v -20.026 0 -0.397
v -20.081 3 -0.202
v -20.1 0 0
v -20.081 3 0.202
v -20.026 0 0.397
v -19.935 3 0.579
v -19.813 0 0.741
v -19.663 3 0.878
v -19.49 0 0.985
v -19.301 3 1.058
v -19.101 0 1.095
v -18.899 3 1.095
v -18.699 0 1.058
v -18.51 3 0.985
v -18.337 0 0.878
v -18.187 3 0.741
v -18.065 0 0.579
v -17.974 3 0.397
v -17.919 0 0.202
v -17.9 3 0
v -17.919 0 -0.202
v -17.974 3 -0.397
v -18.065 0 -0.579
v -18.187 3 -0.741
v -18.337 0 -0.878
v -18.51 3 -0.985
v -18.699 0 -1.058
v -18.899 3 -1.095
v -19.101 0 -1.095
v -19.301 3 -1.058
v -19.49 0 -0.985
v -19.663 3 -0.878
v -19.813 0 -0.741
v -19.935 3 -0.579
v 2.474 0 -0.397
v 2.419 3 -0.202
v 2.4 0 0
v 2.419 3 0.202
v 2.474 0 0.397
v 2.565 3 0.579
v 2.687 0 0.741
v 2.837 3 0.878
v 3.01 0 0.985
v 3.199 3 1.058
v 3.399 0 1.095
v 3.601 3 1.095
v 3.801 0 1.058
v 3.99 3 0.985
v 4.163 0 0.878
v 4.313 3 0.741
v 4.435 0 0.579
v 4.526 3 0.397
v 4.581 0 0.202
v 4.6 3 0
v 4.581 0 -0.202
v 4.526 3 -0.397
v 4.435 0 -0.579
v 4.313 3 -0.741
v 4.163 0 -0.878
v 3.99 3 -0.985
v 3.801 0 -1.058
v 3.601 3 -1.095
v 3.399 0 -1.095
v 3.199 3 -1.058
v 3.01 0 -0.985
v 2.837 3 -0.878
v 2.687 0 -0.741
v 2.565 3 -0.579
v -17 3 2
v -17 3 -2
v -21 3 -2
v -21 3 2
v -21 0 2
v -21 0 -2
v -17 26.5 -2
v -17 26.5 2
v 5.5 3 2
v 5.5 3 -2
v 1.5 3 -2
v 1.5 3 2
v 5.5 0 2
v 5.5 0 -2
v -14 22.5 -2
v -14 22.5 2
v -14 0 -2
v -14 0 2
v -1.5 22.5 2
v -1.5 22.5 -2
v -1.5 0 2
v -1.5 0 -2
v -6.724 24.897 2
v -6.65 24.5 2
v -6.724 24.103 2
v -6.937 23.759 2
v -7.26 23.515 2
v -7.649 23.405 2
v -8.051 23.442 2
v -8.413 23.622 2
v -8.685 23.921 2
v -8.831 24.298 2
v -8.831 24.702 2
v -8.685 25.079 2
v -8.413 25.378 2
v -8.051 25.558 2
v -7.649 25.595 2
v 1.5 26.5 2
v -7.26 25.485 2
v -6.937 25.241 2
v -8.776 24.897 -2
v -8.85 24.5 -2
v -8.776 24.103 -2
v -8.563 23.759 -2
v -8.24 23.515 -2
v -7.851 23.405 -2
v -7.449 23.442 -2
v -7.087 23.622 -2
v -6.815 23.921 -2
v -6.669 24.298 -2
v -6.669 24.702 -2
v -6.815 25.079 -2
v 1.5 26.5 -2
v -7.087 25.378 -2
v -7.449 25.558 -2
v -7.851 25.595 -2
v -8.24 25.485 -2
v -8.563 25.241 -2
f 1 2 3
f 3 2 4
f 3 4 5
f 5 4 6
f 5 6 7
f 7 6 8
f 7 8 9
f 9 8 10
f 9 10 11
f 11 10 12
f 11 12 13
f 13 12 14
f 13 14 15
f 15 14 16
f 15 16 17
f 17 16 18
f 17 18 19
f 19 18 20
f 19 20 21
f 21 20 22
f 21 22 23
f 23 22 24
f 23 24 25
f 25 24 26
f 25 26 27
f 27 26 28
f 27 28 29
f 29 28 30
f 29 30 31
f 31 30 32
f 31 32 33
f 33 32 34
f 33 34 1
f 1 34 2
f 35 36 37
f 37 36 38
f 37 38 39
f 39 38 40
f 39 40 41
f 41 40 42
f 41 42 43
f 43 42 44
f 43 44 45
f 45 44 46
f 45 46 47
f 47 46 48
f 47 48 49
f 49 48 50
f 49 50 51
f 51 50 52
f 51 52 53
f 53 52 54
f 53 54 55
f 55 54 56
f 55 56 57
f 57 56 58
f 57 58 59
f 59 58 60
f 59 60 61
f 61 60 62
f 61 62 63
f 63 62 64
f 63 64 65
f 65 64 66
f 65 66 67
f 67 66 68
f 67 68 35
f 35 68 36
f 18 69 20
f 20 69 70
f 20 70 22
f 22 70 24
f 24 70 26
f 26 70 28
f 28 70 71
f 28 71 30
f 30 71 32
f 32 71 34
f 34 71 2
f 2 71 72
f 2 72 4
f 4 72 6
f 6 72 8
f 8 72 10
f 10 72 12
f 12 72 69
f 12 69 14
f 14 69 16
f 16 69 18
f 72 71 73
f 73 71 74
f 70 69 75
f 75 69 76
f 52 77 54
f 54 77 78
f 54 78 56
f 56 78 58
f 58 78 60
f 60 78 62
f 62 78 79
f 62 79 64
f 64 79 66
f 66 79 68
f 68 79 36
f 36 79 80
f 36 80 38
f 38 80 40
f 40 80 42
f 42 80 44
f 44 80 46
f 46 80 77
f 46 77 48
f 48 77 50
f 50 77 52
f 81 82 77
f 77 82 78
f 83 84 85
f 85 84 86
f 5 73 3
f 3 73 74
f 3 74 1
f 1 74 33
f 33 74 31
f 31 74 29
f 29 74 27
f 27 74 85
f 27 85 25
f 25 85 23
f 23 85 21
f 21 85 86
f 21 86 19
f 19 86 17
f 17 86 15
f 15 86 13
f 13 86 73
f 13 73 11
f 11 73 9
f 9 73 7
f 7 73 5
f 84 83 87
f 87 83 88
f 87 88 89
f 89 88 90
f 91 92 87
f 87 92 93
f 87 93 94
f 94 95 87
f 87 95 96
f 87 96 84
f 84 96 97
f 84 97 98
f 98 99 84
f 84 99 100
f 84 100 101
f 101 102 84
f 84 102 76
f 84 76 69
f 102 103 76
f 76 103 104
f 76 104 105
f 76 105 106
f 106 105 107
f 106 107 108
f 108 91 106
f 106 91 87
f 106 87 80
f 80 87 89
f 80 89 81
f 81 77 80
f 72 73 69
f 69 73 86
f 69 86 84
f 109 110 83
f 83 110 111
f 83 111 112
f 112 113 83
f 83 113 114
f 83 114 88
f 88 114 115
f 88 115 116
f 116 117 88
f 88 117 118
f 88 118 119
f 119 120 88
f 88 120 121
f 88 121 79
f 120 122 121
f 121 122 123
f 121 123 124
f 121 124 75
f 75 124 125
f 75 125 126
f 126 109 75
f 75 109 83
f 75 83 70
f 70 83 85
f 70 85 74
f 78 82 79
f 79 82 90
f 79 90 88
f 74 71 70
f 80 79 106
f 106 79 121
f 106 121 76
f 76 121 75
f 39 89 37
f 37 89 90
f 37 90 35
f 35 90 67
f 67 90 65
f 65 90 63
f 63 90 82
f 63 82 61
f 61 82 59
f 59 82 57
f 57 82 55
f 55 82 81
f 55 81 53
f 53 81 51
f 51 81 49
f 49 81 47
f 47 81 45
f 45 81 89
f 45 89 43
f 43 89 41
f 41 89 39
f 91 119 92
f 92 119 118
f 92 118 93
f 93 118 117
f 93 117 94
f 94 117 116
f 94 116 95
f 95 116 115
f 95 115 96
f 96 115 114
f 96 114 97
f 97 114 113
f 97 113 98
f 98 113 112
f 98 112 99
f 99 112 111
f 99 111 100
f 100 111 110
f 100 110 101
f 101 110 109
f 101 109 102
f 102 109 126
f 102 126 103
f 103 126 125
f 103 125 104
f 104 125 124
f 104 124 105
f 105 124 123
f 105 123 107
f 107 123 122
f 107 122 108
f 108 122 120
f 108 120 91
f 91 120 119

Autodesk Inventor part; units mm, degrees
ref_plane "YZ Plane" through (0, 0, 0) normal (1, 0, 0) x (0, 1, 0)
ref_plane "XZ Plane" through (0, 0, 0) normal (0, 1, 0) x (-1, 0, 0)
ref_plane "XY Plane" through (0, 0, 0) normal (0, 0, 1) x (1, 0, 0)
sketch "Szkic1" plane through (0, 0, 0) normal (0, 1, 0) x (-1, 0, 0)
  line L0 (1.5, 2) -> (-1.5, 2)
  line L1 (-1.5, 2) -> (-1.5, -2)
  line L2 (-1.5, -2) -> (1.5, -2)
  line L3 (1.5, -2) -> (1.5, 2)
  line L4 (1.5, 2) -> (-1.5, -2) construction
  line L5 (-1.5, 2) -> (1.5, -2) construction
  point P0 (0, 0)
  dimension "d0" = 4
  dimension "d1" = 3
extrude "Wyciągnięcie proste1" add sketch "Szkic1" along normal blind 26.5
sketch "Szkic2" plane through (-1.5, 0, -2) normal (-1, 0, 0) x (0, 0, 1)
  line L0 (4, 26.5) -> (0, 26.5) projected
  line L1 (4, 0) -> (4, 26.5) projected
  line L2 (0, 26.5) -> (4, 26.5)
  line L3 (4, 26.5) -> (4, 22.5)
  line L4 (4, 22.5) -> (0, 22.5)
  line L5 (0, 22.5) -> (0, 26.5)
  point P0 (2, 0)
  dimension "d4" = 4
extrude "Wyciągnięcie proste2" add sketch "Szkic2" along normal blind 15.5
sketch "Szkic3" plane through (-1.5, 22.5, -2) normal (0, -1, 0) x (1, 0, 0)
  line L0 (3, 4) -> (-15.5, 4) projected
  line L1 (3, 0) -> (-15.5, 0) projected
  line L2 (-15.5, 4) -> (-12.5, 4)
  line L3 (-12.5, 4) -> (-12.5, 0)
  line L4 (-12.5, 0) -> (-15.5, 0)
  line L5 (-15.5, 0) -> (-15.5, 4)
  point P0 (1.5, 2)
  dimension "d7" = 3
extrude "Wyciągnięcie proste3" add sketch "Szkic3" along normal blind 22.5
sketch "Szkic4" plane through (1.5, 0, 2) normal (1, 0, 0) x (0, 0, -1)
  line L0 (4, 0) -> (0, 0) projected
  line L1 (4, 22.5) -> (4, 0) projected
  line L2 (0, 0) -> (4, 0)
  line L3 (4, 0) -> (4, 3)
  line L4 (4, 3) -> (0, 3)
  line L5 (0, 3) -> (0, 0)
  point P0 (2, 0)
  dimension "d10" = 3
extrude "Wyciągnięcie proste4" add sketch "Szkic4" along normal blind 4
sketch "Szkic5" plane through (-17, 0, -2) normal (-1, 0, 0) x (0, 0, 1)
  line L0 (0, 0) -> (4, 0) projected
  line L1 (4, 3) -> (0, 3) projected
  line L2 (0, 0) -> (4, 0)
  line L3 (4, 0) -> (4, 3)
  line L4 (4, 3) -> (0, 3)
  line L5 (0, 3) -> (0, 0)
  point P0 (2, 0)
extrude "Wyciągnięcie proste5" add sketch "Szkic5" along normal blind 4
sketch "Szkic6" plane through (1.5, 3, 2) normal (0, 1, 0) x (1, 0, 0)
  line L0 (0, 0) -> (4, 0) projected
  line L1 (0, 4) -> (4, 4) projected
  line L2 (4, 0) -> (0, 4)
  line L3 (4, 0) -> (4, 4) projected
  line L4 (0, 0) -> (4, 4)
  circle A0 centre (2, 2) radius 1.1
  line L5 (-22.5, 4) -> (-22.5, 0) projected
  line L6 (-18.5, 4) -> (-18.5, 0) projected
  line L7 (-22.5, 0) -> (-18.5, 4)
  line L8 (-18.5, 4) -> (-22.5, 4) projected
  line L9 (-18.5, 0) -> (-22.5, 4)
  circle A1 centre (-20.5, 2) radius 1.1
  point P0 (-1.5, 2)
  dimension "d15" = 2.2
  dimension "d16" = 2.2
hole "Otwór1" at (3.5, 3, 0) at (-19, 3, 0) direction (0, -1, 0) diameter 2.2 end through all
sketch "Szkic7" plane through (1.5, 26.5, -2) normal (0, 0, -1) x (-1, 0, 0)
  line L0 (3, -4) -> (15.5, -4) projected
  line L1 (3, -4) -> (3, 0)
  line L2 (0, 0) -> (18.5, 0) projected
  line L3 (15.5, -4) -> (15.5, -26.5) projected
  line L4 (3, 0) -> (15.5, -4)
  line L5 (15.5, -4) -> (15.5, 0)
  line L6 (15.5, 0) -> (3, -4)
  point P0 (1.5, -26.5)
  point P1 (9.25, -2)
hole "Otwór3" at (-7.75, 24.5, -2) direction (0, 0, 1) diameter 2.2 end through all
properties part number "mocowanie-serwomechanizmy"
